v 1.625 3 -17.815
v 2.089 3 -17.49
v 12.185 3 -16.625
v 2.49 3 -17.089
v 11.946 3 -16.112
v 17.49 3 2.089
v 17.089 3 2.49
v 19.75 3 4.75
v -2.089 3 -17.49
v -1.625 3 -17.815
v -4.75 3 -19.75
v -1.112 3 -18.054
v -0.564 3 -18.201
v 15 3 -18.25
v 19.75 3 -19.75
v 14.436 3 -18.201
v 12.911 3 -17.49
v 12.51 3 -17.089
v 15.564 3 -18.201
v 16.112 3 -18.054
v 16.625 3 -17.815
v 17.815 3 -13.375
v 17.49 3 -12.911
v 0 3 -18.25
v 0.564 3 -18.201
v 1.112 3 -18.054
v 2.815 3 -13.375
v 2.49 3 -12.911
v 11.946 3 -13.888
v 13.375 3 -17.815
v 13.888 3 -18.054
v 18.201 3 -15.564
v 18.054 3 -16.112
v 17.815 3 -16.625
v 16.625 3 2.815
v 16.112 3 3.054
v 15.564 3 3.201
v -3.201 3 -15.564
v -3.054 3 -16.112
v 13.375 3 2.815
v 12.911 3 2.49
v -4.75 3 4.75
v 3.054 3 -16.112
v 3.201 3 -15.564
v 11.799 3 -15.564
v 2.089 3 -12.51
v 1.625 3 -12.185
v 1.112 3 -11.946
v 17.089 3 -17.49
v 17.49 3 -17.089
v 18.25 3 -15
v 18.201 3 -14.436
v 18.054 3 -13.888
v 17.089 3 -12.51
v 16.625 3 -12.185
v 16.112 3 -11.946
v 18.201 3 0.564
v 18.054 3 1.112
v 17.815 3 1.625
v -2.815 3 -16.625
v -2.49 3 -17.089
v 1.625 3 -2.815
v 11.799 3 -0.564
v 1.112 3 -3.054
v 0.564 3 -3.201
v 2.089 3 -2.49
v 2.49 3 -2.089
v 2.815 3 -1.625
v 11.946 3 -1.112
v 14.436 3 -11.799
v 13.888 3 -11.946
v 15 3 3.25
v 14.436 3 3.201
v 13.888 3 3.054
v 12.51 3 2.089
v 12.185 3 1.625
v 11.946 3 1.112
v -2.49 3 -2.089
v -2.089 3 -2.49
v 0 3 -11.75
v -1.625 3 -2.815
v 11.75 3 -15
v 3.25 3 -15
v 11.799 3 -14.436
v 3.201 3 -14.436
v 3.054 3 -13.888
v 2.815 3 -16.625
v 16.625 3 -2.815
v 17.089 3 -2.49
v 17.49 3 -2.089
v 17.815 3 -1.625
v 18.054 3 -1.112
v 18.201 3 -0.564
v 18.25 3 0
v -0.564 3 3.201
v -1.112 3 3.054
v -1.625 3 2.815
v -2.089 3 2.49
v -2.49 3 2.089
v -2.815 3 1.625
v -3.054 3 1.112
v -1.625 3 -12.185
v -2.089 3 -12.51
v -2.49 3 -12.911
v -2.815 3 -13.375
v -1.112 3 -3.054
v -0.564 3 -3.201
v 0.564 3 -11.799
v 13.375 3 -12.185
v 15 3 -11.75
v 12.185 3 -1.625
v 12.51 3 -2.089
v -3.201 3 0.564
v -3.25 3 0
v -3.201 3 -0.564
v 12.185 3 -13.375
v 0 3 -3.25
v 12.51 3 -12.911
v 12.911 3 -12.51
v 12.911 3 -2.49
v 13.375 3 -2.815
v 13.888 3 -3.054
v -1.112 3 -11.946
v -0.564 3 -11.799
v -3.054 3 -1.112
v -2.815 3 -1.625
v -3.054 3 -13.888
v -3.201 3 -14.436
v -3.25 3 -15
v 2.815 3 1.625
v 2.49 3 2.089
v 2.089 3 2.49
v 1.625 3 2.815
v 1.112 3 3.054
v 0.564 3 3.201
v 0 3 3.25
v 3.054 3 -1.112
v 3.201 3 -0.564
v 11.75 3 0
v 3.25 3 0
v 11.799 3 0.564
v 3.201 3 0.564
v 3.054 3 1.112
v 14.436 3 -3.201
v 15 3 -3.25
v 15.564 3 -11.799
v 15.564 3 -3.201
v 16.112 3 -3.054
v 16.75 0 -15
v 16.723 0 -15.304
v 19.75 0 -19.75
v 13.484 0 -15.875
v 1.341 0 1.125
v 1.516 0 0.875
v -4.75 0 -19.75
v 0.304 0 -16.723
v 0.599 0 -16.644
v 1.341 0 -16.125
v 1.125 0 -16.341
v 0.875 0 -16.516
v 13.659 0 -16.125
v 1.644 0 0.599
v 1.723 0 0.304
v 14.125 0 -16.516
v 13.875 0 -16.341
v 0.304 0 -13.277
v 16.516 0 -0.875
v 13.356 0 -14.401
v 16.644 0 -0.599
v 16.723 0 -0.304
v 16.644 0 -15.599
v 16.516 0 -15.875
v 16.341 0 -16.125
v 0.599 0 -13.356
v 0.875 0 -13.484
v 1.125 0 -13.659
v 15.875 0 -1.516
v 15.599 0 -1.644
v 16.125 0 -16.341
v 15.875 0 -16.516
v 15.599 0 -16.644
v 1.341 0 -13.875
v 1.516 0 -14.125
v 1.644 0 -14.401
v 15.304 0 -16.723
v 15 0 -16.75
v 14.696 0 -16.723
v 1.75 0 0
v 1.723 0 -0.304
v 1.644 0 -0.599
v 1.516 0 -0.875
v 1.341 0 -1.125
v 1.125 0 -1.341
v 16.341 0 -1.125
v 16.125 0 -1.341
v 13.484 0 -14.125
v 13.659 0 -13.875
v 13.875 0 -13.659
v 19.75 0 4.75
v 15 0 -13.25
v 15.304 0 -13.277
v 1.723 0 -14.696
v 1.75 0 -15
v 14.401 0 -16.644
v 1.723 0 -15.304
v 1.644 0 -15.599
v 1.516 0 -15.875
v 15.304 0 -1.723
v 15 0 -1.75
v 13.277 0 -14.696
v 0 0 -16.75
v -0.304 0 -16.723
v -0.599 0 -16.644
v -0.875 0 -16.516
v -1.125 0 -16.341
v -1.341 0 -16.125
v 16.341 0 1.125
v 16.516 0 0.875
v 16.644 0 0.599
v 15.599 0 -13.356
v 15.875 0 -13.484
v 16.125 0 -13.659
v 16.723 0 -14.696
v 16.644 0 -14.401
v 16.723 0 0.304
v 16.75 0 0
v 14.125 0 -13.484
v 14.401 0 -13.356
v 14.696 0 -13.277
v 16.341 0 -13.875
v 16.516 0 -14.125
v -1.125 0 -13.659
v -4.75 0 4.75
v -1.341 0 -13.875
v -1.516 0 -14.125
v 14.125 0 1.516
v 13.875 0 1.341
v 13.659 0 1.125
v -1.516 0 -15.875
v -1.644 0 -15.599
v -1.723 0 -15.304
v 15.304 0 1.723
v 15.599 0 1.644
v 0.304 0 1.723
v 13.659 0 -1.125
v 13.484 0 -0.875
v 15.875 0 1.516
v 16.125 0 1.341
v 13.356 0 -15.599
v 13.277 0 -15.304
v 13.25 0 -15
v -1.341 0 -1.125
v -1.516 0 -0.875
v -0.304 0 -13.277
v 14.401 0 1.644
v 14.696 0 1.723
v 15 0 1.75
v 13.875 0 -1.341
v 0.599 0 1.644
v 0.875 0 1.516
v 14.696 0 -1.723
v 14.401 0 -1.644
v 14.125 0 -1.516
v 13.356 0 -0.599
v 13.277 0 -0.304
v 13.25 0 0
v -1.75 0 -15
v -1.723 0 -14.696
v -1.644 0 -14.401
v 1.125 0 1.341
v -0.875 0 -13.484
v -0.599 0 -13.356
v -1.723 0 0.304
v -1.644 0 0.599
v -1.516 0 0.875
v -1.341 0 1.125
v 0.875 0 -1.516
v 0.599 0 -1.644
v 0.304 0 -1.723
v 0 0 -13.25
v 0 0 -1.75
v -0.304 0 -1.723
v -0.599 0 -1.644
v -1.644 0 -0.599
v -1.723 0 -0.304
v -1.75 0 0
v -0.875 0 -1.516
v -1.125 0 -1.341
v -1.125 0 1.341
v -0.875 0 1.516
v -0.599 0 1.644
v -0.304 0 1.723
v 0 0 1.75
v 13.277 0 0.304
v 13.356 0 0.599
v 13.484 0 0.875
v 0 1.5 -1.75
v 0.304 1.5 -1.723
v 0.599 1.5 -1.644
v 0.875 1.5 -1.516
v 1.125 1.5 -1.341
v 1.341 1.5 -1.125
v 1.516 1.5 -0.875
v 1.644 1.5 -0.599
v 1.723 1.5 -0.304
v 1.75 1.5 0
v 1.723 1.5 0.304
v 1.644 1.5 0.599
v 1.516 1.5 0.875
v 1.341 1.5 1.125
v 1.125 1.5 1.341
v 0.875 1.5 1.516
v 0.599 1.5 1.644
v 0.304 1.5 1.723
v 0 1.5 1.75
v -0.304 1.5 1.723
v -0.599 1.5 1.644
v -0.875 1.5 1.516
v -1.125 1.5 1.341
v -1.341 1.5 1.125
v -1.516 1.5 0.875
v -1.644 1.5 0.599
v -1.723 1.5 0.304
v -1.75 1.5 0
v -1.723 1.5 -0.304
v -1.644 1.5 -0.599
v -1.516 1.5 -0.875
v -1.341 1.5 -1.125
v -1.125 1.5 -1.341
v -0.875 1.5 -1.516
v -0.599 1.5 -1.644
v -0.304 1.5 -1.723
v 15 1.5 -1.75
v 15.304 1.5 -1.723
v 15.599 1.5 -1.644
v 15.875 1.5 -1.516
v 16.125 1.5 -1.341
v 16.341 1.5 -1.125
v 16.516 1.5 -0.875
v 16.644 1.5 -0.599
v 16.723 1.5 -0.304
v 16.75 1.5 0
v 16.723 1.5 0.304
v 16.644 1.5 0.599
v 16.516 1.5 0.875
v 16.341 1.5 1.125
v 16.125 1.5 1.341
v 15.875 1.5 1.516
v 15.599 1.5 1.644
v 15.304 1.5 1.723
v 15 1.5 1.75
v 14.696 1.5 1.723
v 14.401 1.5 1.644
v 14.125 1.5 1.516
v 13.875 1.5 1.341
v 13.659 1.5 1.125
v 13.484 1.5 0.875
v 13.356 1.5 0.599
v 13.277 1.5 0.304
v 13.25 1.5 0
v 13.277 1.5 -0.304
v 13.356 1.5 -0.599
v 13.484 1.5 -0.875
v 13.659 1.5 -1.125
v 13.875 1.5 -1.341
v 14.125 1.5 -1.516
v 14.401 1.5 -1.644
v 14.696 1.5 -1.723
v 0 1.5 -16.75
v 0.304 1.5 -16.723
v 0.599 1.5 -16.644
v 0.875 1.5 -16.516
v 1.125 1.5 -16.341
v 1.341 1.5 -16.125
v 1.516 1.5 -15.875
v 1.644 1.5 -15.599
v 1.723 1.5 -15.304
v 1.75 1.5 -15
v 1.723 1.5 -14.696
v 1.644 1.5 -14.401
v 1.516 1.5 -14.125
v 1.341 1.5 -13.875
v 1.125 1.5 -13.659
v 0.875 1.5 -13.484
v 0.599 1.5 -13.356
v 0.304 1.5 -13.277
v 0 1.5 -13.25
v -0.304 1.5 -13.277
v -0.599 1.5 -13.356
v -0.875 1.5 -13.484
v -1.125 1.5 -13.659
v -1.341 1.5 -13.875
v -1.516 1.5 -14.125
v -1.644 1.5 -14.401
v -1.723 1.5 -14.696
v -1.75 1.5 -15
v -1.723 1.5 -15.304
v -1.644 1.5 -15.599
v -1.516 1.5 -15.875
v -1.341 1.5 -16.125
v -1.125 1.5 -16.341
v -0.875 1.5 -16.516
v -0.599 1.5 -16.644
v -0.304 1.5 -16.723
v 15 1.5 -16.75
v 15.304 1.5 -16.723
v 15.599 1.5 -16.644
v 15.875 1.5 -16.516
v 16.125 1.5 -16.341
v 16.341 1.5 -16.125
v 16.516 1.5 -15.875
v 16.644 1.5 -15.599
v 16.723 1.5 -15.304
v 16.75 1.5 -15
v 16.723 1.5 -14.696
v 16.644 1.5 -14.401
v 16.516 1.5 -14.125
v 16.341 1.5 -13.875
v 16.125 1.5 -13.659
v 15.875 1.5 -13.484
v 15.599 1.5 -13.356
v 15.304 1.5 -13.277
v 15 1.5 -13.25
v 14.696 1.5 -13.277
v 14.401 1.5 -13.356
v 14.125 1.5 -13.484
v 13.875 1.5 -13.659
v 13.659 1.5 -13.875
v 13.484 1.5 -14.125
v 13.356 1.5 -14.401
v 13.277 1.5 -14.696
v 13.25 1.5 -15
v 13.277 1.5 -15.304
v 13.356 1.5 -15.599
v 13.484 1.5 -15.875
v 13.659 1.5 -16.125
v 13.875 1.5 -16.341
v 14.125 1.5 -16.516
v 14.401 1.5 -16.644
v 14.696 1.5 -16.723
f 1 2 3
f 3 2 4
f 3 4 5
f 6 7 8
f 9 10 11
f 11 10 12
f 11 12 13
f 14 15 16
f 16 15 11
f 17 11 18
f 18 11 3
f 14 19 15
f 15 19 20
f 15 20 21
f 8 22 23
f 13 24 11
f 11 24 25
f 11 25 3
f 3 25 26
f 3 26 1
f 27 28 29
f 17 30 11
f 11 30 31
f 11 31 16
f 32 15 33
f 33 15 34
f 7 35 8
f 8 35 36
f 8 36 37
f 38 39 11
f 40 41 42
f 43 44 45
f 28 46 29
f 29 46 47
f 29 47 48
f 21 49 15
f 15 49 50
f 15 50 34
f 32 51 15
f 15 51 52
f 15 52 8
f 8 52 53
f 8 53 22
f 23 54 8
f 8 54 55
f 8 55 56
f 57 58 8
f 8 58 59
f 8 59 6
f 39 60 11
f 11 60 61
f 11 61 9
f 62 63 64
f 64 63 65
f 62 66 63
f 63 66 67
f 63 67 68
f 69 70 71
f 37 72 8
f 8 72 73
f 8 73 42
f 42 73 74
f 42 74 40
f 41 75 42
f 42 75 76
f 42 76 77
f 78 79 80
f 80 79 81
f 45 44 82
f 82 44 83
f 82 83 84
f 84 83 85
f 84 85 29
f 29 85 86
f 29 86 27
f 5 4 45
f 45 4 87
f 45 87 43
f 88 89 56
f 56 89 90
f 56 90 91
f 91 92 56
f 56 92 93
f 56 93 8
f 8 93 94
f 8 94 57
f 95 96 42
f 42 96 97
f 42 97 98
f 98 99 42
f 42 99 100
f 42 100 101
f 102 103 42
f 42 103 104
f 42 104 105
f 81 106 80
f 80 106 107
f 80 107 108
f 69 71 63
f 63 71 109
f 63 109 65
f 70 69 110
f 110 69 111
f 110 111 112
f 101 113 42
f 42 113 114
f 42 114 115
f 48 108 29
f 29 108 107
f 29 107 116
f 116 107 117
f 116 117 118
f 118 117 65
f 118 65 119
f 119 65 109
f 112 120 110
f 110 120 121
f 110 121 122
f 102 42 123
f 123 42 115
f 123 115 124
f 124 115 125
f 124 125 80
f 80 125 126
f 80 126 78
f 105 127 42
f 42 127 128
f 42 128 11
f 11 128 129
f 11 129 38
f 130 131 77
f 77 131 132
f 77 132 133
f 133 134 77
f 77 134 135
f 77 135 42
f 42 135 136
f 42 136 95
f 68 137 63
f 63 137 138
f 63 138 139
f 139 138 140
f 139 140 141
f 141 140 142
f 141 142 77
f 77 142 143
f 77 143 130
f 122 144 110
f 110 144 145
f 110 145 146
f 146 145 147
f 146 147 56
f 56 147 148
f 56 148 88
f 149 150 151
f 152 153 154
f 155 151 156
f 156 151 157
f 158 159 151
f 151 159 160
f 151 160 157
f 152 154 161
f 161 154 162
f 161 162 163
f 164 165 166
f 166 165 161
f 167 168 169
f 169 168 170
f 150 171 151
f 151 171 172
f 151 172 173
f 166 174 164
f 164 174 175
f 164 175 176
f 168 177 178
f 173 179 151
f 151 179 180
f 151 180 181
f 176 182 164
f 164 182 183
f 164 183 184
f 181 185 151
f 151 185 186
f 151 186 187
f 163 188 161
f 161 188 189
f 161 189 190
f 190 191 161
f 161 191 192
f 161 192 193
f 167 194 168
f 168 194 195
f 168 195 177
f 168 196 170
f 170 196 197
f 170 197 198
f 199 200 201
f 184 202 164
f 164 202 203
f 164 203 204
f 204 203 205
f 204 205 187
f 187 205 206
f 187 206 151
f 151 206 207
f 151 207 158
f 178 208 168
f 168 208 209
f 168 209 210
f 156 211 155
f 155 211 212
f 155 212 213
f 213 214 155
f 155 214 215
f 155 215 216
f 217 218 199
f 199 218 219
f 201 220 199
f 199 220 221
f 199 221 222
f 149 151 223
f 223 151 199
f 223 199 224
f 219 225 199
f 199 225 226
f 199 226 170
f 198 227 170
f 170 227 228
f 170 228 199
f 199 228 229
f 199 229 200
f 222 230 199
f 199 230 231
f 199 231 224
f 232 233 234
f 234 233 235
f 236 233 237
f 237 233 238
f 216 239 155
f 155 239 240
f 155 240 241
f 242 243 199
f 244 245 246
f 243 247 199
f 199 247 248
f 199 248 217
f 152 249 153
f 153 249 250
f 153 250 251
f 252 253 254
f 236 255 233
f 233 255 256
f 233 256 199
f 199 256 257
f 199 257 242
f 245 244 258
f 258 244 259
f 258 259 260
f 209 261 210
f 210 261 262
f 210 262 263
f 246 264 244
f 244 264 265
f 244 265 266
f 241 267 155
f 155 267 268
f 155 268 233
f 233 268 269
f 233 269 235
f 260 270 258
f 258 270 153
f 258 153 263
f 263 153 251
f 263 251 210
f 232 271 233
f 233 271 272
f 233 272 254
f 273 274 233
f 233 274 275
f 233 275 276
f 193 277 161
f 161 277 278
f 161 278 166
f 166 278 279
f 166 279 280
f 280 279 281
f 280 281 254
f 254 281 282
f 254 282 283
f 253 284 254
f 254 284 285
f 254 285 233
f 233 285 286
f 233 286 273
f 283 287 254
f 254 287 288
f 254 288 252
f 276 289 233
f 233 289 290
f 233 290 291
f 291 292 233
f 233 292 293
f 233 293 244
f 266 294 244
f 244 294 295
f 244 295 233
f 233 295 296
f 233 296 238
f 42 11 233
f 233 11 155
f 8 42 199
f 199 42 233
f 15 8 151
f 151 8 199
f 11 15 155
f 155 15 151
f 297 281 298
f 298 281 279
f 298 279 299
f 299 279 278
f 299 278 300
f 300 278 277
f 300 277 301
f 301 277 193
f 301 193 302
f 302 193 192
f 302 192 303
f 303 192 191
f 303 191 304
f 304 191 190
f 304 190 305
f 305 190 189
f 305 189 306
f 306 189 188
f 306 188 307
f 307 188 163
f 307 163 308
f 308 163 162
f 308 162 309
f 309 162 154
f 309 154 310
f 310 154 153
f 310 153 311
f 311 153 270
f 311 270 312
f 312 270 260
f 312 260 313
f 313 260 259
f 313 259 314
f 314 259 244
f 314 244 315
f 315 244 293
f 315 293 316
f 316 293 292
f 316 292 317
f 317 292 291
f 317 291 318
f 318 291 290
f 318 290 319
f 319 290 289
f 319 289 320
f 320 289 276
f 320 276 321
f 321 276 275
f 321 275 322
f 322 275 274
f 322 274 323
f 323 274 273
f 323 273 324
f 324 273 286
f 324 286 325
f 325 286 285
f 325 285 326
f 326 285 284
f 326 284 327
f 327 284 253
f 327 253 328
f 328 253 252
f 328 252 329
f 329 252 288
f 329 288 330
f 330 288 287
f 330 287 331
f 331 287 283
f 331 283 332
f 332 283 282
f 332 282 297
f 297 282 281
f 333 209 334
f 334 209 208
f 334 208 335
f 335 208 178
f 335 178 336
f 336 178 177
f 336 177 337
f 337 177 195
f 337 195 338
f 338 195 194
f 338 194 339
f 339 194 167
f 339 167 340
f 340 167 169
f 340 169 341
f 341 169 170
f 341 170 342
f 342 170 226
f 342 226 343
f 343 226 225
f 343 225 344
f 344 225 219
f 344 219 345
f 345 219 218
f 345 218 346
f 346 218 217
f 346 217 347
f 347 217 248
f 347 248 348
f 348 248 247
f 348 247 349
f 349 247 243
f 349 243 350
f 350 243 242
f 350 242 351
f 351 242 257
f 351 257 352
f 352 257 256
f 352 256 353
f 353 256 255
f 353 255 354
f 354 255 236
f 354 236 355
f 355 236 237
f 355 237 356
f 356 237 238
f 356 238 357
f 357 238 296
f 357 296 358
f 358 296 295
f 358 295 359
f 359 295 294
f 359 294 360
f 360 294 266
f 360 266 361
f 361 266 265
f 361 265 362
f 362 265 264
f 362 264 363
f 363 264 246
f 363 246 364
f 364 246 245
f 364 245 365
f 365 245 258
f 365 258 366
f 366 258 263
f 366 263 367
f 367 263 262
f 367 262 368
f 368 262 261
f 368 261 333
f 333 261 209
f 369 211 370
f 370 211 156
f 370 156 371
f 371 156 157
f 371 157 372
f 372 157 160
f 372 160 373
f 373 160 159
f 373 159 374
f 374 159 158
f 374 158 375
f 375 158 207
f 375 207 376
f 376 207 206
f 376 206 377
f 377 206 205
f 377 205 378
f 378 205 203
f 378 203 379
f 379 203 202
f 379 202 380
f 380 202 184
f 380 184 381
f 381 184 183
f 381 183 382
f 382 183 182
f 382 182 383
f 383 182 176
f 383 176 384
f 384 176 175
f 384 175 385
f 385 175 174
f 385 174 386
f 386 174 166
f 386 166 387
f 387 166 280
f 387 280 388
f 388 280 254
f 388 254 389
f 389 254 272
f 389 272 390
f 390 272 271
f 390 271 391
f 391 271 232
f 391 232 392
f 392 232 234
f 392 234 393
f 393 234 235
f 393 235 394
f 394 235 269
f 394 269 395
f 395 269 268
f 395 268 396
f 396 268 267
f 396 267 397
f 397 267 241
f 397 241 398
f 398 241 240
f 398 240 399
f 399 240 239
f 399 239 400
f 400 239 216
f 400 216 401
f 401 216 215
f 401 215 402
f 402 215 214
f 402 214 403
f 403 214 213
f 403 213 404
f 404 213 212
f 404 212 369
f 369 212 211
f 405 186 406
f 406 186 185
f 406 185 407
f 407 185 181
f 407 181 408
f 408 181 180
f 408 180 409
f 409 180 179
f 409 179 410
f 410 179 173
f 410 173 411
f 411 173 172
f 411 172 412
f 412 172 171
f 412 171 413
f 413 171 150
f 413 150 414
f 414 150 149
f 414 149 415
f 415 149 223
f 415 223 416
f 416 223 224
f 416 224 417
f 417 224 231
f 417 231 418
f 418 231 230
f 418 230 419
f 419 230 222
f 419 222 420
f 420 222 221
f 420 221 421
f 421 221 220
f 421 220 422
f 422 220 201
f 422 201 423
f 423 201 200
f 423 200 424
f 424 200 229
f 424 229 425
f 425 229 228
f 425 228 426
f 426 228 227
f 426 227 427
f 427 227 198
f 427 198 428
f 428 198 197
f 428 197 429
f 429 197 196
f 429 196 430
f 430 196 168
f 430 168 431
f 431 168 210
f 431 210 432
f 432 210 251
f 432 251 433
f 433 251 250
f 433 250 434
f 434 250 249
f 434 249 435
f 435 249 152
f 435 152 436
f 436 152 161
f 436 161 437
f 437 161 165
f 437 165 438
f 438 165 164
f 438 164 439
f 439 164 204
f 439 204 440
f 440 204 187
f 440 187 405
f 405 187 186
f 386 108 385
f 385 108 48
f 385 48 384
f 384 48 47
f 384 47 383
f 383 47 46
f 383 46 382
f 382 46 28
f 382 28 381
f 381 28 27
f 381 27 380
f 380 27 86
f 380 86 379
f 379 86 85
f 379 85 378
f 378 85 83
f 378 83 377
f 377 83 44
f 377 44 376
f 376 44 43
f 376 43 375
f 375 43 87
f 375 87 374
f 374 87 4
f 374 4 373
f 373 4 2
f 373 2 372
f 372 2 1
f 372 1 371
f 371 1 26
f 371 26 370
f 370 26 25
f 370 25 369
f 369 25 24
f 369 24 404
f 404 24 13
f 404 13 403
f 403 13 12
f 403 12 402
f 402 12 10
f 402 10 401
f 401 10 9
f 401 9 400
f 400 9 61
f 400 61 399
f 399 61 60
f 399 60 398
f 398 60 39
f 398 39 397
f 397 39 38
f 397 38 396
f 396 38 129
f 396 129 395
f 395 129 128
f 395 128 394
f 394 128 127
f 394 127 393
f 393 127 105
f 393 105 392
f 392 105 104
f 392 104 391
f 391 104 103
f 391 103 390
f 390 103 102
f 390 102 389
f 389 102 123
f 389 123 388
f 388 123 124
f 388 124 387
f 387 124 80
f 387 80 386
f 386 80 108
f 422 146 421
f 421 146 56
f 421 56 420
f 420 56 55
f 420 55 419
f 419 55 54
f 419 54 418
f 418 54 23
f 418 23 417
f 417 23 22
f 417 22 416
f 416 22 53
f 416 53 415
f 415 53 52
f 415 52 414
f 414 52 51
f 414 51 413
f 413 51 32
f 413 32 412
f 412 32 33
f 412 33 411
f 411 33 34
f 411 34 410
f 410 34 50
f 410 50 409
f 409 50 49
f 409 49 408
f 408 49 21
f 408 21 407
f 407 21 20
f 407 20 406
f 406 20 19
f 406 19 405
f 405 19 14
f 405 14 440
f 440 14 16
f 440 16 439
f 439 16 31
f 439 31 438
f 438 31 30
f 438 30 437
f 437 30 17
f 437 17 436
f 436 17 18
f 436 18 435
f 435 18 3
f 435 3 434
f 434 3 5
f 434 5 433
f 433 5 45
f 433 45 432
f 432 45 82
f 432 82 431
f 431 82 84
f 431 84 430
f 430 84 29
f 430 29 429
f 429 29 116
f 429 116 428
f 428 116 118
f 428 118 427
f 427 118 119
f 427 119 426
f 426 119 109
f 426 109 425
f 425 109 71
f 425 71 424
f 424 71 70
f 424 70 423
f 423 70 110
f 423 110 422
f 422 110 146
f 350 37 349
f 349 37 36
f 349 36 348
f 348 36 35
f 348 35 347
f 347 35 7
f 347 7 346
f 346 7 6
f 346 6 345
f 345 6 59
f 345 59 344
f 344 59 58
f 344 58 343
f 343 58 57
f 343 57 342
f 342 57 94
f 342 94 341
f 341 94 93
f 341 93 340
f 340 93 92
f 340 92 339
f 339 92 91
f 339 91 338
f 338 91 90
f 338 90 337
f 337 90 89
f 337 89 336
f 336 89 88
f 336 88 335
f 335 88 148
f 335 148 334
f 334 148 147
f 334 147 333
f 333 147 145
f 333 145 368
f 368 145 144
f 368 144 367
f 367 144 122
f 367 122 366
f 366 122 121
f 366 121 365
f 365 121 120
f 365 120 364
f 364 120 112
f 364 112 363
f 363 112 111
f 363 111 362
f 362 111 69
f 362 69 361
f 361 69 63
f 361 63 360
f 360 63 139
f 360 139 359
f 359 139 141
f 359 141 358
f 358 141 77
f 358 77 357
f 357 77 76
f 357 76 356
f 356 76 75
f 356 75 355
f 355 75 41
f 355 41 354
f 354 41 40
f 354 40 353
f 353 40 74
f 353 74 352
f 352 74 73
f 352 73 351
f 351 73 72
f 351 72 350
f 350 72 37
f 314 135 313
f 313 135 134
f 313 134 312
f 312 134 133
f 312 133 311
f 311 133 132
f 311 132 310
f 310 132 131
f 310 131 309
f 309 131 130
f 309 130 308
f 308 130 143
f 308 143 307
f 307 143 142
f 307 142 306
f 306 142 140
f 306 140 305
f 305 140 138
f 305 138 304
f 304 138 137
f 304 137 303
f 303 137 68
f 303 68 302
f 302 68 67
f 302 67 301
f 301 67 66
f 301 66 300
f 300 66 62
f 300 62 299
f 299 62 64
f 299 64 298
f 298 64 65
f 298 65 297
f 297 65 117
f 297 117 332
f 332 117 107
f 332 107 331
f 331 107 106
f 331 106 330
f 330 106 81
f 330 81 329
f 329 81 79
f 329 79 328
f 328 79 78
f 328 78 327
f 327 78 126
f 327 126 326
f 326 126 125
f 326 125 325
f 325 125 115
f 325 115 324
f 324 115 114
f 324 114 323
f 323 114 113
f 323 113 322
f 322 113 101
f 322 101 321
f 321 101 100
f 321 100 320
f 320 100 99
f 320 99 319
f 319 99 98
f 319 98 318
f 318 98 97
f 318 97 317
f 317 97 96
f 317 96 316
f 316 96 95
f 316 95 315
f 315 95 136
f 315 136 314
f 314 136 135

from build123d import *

# Parameters (mm, degrees)
SKETCH_1_W                  = 24.5
SKETCH_1_H                  = 24.5
SKETCH_1_R                  = 1.75
EXTRUDE_1_DEPTH             = 3
HOLE_WIZARD_M3_1_AT_2_COUNT = 2
HOLE_WIZARD_M3_1_AT_2_PITCH = 15
HOLE_WIZARD_M3_1_AT_3_COUNT = 2
HOLE_WIZARD_M3_1_AT_3_PITCH = 21.213203436
HOLE_WIZARD_M3_1_AT_4_COUNT = 2
HOLE_WIZARD_M3_1_AT_4_PITCH = 15


with BuildPart() as part:
    # 草图1 → 凸台-拉伸1 (new body)
    with BuildSketch(Plane(origin=(0, 0, 0), x_dir=(1, 0, 0), z_dir=(0, 1, 0))):
        with Locations((7.5, 7.5)):
            Rectangle(SKETCH_1_W, SKETCH_1_H)
        with Locations(Location((0, 0, 0), (0, 0, 270))):
            Circle(SKETCH_1_R, mode=Mode.SUBTRACT)
        with Locations(Location((15, 0, 0), (0, 0, 270))):
            Circle(SKETCH_1_R, mode=Mode.SUBTRACT)
        with Locations(Location((0, 15, 0), (0, 0, 270))):
            Circle(SKETCH_1_R, mode=Mode.SUBTRACT)
        with Locations(Location((15, 15, 0), (0, 0, 270))):
            Circle(SKETCH_1_R, mode=Mode.SUBTRACT)
    extrude(amount=EXTRUDE_1_DEPTH)

    # 草图5 → M3 平头机械螺钉的锥形沉头孔1 (revolve, cut)
    with BuildSketch(Plane(origin=(0, 3, 0), x_dir=(0, 0, 1), z_dir=(1, 0, 0))):
        Polygon((0, 0), (0, 3), (1.6, 3), (1.6, 1.65), (3.25, 0), align=None)
    hole_wizard_m3_1 = revolve(axis=Axis((0, 9.35, 0), (0, -1, 0)), mode=Mode.SUBTRACT)

    # M3 平头机械螺钉的锥形沉头孔1 at 2: M3 平头机械螺钉的锥形沉头孔1 ×2
    with Locations(*[(i * HOLE_WIZARD_M3_1_AT_2_PITCH, 0, 0) for i in range(1, HOLE_WIZARD_M3_1_AT_2_COUNT)]):
        add(hole_wizard_m3_1, mode=Mode.SUBTRACT)

    # M3 平头机械螺钉的锥形沉头孔1 at 3: M3 平头机械螺钉的锥形沉头孔1 ×2
    with Locations(*[Vector(0.7071067811865476, 0, -0.7071067811865476) * (i * HOLE_WIZARD_M3_1_AT_3_PITCH) for i in range(1, HOLE_WIZARD_M3_1_AT_3_COUNT)]):
        add(hole_wizard_m3_1, mode=Mode.SUBTRACT)

    # M3 平头机械螺钉的锥形沉头孔1 at 4: M3 平头机械螺钉的锥形沉头孔1 ×2
    with Locations(*[(0, 0, -i * HOLE_WIZARD_M3_1_AT_4_PITCH) for i in range(1, HOLE_WIZARD_M3_1_AT_4_COUNT)]):
        add(hole_wizard_m3_1, mode=Mode.SUBTRACT)


solid = part.part
